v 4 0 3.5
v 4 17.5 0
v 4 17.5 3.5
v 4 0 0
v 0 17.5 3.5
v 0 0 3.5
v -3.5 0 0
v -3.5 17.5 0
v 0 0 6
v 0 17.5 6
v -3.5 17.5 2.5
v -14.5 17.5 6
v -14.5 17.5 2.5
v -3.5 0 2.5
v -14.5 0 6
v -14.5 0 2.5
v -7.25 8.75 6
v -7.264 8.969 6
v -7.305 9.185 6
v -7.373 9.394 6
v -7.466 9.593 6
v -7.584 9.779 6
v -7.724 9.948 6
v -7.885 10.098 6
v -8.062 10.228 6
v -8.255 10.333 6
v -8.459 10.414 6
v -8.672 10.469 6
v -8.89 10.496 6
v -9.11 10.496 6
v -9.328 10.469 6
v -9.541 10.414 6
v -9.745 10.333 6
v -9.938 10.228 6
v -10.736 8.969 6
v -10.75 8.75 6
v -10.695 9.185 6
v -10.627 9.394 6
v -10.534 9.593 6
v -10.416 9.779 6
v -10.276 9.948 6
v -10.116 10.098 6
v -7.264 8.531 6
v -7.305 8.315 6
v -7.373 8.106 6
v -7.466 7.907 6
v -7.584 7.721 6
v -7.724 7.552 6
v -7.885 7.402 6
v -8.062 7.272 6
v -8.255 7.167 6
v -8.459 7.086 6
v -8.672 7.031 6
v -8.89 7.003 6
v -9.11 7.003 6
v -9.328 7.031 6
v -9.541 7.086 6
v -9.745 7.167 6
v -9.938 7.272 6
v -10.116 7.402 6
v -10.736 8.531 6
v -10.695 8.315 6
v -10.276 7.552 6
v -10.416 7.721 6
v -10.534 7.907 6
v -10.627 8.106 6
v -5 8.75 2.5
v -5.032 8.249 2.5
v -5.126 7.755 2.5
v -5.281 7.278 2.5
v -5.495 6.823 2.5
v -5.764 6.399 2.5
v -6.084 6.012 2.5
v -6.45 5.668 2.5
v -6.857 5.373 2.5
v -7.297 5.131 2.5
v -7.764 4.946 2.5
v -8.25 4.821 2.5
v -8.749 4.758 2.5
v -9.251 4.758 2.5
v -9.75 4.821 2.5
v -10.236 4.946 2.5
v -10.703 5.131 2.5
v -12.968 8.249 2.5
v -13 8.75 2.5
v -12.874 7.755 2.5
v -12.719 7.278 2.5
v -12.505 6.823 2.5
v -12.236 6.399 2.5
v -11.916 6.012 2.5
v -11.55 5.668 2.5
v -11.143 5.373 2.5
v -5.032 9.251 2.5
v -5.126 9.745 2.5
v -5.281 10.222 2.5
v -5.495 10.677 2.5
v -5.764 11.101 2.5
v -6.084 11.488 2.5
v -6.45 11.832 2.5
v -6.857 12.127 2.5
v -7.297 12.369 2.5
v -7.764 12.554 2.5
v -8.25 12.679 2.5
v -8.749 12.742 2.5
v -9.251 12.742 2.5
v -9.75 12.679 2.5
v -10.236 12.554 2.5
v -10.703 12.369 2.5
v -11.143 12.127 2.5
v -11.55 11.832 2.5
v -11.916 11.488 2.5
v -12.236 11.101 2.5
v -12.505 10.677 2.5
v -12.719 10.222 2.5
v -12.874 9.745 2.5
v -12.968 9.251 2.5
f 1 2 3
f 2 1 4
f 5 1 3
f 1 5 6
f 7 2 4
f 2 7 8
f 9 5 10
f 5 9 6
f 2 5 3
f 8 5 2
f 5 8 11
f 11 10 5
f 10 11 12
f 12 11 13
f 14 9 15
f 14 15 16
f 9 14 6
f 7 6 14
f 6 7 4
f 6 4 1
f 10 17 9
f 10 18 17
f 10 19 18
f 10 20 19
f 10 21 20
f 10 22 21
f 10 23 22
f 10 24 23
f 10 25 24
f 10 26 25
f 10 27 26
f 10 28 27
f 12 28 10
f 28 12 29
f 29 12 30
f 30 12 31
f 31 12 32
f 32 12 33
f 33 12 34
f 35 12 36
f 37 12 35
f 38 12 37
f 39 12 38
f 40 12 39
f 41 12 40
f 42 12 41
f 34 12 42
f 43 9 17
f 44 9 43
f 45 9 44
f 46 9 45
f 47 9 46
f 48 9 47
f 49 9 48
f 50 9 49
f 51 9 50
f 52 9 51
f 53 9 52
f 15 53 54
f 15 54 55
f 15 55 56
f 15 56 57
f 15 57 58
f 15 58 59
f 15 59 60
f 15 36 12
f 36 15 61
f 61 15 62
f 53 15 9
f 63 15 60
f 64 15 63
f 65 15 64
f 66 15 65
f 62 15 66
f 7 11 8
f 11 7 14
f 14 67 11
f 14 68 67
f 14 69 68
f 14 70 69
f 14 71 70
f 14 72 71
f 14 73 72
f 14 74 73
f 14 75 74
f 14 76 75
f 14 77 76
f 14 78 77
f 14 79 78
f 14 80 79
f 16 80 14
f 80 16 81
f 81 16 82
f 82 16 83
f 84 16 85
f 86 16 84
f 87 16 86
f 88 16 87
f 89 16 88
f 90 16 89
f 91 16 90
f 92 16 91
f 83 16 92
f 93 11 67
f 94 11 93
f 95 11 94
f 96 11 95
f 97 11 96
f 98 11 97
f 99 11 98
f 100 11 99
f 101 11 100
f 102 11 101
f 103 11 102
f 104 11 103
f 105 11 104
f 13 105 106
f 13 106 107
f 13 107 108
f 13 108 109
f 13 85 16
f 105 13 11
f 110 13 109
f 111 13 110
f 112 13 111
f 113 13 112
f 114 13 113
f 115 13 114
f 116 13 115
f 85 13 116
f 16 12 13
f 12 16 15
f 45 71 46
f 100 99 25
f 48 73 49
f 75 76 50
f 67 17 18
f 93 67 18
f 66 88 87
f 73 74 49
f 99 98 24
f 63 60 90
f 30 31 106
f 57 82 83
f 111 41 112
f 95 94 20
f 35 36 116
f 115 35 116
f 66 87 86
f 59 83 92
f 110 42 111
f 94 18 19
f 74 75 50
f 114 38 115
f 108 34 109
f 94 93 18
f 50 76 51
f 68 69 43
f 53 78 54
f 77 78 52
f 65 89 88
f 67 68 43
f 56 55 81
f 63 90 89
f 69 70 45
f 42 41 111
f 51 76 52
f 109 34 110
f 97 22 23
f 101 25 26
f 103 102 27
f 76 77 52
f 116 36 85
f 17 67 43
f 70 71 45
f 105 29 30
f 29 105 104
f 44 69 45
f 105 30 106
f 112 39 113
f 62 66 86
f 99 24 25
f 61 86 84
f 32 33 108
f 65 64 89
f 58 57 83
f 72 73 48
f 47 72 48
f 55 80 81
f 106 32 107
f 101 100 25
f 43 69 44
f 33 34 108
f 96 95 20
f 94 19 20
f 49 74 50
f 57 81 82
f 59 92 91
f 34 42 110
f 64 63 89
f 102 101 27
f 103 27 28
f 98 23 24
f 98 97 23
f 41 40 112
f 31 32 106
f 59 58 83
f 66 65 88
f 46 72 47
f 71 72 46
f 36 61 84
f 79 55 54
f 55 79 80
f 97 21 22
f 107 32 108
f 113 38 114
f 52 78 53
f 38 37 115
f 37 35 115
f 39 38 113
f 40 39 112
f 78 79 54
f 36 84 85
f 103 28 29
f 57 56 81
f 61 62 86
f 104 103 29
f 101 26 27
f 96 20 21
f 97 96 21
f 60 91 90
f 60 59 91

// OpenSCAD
$fn=50;

width = 17.5;

difference() {

     union() {
          cube([4.0,width,3.5],center=false);
          translate([-3.5,0,0]) {
               cube([3.5,width,2.5+3.5],center=false);
          }
          translate([-11-3.5,0,2.5]) {
               cube([11,width,3.5],center=false);
          }
     }

     union() {
          translate([-9,width/2,2.5]) {
               cylinder(h=3.5, d1=8, d2=3.5, center=false);
          }
     }

}
